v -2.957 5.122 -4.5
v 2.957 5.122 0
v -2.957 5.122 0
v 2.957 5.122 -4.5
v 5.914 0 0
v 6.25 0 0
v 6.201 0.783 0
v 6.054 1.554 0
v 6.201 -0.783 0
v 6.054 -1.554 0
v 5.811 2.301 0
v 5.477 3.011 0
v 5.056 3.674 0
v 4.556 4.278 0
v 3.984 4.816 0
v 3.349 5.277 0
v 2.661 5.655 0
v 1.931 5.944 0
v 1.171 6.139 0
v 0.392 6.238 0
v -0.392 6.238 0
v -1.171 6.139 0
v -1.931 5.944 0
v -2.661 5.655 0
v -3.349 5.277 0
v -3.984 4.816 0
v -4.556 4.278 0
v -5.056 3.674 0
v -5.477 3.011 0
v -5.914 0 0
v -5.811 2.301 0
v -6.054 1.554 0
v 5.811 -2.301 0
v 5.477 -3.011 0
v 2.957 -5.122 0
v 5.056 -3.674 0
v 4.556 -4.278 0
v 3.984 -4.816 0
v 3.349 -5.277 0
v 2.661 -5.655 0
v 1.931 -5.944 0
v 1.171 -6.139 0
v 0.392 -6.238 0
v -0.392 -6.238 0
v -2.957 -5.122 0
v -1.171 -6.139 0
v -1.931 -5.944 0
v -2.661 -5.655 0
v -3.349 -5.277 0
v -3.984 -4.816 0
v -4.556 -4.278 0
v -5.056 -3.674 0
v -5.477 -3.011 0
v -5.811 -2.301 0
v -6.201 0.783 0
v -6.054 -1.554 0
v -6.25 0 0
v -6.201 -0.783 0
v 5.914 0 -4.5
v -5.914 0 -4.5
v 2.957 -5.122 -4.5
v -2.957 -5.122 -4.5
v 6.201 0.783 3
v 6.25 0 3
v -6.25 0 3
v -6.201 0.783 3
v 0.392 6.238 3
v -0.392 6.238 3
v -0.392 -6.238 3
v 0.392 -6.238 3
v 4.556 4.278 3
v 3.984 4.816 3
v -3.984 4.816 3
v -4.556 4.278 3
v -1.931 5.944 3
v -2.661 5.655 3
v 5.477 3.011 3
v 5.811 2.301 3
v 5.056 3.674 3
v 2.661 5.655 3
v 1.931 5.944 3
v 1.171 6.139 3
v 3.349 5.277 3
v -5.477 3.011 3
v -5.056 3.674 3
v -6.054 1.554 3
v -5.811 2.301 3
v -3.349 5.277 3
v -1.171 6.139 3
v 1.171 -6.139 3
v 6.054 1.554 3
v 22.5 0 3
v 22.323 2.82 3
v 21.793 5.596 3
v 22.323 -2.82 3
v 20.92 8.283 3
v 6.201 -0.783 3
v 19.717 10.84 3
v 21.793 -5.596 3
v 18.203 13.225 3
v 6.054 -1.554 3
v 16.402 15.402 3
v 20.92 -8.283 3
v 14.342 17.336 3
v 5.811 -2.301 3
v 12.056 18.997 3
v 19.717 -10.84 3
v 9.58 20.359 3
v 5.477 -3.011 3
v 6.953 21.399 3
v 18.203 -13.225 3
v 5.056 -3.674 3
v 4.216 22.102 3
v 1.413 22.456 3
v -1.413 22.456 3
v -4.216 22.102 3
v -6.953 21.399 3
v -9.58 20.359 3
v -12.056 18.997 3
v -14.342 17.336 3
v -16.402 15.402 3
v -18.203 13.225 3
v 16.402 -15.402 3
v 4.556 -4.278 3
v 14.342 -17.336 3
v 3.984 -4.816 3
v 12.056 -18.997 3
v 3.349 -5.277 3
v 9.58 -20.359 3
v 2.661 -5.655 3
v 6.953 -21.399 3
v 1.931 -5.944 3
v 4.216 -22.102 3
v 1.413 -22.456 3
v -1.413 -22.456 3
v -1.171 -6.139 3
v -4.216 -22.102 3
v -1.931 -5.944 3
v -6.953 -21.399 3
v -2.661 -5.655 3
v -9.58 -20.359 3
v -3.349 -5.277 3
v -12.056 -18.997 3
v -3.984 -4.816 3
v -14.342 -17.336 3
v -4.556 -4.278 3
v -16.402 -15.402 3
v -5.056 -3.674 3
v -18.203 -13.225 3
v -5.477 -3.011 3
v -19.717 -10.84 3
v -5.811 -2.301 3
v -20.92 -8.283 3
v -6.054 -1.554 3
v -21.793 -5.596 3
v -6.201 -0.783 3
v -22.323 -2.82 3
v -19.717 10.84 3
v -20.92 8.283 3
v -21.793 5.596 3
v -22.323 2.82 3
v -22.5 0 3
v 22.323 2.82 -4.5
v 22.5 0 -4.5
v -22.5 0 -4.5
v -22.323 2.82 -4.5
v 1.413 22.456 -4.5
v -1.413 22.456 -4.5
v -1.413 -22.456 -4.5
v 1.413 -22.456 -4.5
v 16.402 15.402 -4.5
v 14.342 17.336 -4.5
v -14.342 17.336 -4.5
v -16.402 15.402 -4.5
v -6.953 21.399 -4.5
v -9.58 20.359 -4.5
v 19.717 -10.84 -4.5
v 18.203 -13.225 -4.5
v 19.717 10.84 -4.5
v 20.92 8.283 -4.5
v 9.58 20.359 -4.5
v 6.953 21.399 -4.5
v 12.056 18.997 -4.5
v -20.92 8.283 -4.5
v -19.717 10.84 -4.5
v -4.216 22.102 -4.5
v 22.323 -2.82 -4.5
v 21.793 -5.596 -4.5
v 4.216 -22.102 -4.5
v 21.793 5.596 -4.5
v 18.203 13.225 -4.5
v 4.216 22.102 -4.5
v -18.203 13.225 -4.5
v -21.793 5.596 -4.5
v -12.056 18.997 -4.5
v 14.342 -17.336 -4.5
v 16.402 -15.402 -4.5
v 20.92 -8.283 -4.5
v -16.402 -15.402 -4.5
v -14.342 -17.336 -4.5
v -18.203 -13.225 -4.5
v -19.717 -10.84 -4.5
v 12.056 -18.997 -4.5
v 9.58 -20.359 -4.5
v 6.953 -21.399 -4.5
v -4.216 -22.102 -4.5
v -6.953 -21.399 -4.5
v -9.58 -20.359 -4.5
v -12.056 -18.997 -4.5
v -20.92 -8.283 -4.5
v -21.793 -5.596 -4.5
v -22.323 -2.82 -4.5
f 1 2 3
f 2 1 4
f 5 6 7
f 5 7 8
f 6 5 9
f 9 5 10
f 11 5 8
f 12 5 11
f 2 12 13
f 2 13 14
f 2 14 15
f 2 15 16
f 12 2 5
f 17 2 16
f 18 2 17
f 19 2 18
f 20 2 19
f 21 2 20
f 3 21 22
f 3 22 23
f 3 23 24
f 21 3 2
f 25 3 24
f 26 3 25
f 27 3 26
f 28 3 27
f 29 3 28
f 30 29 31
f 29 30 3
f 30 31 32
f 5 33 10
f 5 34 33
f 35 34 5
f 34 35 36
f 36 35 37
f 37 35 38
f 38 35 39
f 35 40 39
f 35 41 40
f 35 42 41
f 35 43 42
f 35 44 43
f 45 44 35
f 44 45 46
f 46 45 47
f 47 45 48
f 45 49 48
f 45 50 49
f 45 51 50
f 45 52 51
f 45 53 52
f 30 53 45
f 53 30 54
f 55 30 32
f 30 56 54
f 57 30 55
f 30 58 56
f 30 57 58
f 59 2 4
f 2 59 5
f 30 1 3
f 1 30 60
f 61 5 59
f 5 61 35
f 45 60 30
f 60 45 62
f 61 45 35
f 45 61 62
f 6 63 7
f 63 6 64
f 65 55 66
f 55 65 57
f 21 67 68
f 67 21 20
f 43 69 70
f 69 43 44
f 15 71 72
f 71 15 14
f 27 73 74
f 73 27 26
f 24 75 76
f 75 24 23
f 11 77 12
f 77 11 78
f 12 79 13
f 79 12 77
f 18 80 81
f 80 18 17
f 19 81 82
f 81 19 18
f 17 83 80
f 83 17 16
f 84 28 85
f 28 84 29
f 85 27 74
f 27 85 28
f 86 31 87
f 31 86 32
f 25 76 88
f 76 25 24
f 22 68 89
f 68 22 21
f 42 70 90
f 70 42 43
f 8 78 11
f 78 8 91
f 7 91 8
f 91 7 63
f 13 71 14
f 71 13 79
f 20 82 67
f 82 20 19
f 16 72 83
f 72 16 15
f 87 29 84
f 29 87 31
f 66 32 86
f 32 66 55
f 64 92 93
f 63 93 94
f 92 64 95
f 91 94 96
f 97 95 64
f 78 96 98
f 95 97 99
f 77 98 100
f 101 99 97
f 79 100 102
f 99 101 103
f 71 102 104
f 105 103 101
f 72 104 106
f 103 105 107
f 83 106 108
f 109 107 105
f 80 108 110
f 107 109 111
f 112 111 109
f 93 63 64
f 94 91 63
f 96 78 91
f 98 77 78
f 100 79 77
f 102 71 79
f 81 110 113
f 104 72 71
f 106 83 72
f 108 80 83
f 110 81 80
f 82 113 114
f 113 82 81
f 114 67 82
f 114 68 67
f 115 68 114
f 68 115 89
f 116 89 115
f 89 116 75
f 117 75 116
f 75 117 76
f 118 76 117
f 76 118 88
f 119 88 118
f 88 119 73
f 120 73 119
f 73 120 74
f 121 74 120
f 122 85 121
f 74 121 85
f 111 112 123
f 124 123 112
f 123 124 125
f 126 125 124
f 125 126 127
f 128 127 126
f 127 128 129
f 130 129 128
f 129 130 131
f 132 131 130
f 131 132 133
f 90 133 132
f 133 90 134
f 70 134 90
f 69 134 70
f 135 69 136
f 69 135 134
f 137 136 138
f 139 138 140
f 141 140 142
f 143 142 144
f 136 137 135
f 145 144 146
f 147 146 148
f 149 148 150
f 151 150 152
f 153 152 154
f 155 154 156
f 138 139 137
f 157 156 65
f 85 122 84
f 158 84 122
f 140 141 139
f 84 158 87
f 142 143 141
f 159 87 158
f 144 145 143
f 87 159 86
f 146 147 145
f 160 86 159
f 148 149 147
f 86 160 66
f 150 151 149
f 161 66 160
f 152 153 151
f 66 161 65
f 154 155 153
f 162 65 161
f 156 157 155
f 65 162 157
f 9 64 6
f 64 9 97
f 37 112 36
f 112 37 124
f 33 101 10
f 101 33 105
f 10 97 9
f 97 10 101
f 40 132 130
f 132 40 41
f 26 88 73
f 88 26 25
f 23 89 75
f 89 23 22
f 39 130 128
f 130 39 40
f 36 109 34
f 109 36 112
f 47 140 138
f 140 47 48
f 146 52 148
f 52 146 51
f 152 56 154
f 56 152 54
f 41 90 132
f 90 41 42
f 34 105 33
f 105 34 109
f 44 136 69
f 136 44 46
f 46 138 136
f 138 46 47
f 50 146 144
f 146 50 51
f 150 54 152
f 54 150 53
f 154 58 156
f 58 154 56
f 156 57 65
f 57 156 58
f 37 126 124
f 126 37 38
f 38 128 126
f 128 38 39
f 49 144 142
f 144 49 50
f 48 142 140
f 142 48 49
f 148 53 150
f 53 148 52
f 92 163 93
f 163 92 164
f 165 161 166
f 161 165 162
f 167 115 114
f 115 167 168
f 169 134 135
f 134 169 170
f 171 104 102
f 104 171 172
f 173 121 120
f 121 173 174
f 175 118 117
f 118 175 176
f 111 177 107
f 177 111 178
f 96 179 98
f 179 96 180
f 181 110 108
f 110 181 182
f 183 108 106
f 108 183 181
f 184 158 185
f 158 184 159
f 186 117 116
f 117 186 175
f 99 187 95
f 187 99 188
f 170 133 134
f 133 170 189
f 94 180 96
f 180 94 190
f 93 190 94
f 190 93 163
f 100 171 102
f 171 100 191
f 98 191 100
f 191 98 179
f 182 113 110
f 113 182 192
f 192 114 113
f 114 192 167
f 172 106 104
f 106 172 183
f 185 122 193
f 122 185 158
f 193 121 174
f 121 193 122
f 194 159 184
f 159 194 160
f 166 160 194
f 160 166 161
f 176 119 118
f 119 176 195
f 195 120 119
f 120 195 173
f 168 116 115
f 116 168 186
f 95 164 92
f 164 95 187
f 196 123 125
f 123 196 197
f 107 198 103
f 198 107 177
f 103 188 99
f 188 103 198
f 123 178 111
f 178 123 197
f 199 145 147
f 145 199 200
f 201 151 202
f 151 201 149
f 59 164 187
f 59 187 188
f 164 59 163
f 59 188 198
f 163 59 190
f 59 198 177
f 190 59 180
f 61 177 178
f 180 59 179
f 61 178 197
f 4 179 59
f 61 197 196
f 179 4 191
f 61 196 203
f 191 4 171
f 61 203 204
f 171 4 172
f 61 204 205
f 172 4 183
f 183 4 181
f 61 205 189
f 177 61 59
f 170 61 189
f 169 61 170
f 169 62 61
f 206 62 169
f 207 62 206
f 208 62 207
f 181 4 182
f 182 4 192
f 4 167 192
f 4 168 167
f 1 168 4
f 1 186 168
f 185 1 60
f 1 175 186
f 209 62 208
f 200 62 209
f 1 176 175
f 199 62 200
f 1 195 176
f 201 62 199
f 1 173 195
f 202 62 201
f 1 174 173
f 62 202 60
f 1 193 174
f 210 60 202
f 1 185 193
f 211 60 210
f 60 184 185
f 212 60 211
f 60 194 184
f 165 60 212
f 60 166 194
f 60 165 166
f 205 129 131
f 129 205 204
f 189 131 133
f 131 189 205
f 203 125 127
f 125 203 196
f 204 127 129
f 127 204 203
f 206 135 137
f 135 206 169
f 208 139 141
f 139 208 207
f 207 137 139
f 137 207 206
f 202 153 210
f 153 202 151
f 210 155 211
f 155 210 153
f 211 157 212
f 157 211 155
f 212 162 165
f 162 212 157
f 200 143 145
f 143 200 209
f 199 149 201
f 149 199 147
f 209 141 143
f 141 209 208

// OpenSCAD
$fn = 50;


difference() {
	union() {
		translate(v = [0, 0, -4.5000000000]) {
			cylinder(h = 7.5000000000, r = 22.5000000000);
		}
	}
	union() {
		translate(v = [0, 0, 0]) {
			rotate(a = [0, 0, 0]) {
				difference() {
					union() {
						translate(v = [0, 0, -5]) {
							linear_extrude(height = 5) {
								polygon(points = [[5.9142500000, 0.0000000000], [2.9571250000, 5.1218907443], [-2.9571250000, 5.1218907443], [-5.9142500000, 0.0000000000], [-2.9571250000, -5.1218907443], [2.9571250000, -5.1218907443]]);
							}
						}
					}
					union();
				}
			}
		}
		#cylinder(h = 3, r = 6.2500000000);
		#translate(v = [0, 0, -100.0000000000]) {
			cylinder(h = 200, r = 3.2500000000);
		}
	}
}
